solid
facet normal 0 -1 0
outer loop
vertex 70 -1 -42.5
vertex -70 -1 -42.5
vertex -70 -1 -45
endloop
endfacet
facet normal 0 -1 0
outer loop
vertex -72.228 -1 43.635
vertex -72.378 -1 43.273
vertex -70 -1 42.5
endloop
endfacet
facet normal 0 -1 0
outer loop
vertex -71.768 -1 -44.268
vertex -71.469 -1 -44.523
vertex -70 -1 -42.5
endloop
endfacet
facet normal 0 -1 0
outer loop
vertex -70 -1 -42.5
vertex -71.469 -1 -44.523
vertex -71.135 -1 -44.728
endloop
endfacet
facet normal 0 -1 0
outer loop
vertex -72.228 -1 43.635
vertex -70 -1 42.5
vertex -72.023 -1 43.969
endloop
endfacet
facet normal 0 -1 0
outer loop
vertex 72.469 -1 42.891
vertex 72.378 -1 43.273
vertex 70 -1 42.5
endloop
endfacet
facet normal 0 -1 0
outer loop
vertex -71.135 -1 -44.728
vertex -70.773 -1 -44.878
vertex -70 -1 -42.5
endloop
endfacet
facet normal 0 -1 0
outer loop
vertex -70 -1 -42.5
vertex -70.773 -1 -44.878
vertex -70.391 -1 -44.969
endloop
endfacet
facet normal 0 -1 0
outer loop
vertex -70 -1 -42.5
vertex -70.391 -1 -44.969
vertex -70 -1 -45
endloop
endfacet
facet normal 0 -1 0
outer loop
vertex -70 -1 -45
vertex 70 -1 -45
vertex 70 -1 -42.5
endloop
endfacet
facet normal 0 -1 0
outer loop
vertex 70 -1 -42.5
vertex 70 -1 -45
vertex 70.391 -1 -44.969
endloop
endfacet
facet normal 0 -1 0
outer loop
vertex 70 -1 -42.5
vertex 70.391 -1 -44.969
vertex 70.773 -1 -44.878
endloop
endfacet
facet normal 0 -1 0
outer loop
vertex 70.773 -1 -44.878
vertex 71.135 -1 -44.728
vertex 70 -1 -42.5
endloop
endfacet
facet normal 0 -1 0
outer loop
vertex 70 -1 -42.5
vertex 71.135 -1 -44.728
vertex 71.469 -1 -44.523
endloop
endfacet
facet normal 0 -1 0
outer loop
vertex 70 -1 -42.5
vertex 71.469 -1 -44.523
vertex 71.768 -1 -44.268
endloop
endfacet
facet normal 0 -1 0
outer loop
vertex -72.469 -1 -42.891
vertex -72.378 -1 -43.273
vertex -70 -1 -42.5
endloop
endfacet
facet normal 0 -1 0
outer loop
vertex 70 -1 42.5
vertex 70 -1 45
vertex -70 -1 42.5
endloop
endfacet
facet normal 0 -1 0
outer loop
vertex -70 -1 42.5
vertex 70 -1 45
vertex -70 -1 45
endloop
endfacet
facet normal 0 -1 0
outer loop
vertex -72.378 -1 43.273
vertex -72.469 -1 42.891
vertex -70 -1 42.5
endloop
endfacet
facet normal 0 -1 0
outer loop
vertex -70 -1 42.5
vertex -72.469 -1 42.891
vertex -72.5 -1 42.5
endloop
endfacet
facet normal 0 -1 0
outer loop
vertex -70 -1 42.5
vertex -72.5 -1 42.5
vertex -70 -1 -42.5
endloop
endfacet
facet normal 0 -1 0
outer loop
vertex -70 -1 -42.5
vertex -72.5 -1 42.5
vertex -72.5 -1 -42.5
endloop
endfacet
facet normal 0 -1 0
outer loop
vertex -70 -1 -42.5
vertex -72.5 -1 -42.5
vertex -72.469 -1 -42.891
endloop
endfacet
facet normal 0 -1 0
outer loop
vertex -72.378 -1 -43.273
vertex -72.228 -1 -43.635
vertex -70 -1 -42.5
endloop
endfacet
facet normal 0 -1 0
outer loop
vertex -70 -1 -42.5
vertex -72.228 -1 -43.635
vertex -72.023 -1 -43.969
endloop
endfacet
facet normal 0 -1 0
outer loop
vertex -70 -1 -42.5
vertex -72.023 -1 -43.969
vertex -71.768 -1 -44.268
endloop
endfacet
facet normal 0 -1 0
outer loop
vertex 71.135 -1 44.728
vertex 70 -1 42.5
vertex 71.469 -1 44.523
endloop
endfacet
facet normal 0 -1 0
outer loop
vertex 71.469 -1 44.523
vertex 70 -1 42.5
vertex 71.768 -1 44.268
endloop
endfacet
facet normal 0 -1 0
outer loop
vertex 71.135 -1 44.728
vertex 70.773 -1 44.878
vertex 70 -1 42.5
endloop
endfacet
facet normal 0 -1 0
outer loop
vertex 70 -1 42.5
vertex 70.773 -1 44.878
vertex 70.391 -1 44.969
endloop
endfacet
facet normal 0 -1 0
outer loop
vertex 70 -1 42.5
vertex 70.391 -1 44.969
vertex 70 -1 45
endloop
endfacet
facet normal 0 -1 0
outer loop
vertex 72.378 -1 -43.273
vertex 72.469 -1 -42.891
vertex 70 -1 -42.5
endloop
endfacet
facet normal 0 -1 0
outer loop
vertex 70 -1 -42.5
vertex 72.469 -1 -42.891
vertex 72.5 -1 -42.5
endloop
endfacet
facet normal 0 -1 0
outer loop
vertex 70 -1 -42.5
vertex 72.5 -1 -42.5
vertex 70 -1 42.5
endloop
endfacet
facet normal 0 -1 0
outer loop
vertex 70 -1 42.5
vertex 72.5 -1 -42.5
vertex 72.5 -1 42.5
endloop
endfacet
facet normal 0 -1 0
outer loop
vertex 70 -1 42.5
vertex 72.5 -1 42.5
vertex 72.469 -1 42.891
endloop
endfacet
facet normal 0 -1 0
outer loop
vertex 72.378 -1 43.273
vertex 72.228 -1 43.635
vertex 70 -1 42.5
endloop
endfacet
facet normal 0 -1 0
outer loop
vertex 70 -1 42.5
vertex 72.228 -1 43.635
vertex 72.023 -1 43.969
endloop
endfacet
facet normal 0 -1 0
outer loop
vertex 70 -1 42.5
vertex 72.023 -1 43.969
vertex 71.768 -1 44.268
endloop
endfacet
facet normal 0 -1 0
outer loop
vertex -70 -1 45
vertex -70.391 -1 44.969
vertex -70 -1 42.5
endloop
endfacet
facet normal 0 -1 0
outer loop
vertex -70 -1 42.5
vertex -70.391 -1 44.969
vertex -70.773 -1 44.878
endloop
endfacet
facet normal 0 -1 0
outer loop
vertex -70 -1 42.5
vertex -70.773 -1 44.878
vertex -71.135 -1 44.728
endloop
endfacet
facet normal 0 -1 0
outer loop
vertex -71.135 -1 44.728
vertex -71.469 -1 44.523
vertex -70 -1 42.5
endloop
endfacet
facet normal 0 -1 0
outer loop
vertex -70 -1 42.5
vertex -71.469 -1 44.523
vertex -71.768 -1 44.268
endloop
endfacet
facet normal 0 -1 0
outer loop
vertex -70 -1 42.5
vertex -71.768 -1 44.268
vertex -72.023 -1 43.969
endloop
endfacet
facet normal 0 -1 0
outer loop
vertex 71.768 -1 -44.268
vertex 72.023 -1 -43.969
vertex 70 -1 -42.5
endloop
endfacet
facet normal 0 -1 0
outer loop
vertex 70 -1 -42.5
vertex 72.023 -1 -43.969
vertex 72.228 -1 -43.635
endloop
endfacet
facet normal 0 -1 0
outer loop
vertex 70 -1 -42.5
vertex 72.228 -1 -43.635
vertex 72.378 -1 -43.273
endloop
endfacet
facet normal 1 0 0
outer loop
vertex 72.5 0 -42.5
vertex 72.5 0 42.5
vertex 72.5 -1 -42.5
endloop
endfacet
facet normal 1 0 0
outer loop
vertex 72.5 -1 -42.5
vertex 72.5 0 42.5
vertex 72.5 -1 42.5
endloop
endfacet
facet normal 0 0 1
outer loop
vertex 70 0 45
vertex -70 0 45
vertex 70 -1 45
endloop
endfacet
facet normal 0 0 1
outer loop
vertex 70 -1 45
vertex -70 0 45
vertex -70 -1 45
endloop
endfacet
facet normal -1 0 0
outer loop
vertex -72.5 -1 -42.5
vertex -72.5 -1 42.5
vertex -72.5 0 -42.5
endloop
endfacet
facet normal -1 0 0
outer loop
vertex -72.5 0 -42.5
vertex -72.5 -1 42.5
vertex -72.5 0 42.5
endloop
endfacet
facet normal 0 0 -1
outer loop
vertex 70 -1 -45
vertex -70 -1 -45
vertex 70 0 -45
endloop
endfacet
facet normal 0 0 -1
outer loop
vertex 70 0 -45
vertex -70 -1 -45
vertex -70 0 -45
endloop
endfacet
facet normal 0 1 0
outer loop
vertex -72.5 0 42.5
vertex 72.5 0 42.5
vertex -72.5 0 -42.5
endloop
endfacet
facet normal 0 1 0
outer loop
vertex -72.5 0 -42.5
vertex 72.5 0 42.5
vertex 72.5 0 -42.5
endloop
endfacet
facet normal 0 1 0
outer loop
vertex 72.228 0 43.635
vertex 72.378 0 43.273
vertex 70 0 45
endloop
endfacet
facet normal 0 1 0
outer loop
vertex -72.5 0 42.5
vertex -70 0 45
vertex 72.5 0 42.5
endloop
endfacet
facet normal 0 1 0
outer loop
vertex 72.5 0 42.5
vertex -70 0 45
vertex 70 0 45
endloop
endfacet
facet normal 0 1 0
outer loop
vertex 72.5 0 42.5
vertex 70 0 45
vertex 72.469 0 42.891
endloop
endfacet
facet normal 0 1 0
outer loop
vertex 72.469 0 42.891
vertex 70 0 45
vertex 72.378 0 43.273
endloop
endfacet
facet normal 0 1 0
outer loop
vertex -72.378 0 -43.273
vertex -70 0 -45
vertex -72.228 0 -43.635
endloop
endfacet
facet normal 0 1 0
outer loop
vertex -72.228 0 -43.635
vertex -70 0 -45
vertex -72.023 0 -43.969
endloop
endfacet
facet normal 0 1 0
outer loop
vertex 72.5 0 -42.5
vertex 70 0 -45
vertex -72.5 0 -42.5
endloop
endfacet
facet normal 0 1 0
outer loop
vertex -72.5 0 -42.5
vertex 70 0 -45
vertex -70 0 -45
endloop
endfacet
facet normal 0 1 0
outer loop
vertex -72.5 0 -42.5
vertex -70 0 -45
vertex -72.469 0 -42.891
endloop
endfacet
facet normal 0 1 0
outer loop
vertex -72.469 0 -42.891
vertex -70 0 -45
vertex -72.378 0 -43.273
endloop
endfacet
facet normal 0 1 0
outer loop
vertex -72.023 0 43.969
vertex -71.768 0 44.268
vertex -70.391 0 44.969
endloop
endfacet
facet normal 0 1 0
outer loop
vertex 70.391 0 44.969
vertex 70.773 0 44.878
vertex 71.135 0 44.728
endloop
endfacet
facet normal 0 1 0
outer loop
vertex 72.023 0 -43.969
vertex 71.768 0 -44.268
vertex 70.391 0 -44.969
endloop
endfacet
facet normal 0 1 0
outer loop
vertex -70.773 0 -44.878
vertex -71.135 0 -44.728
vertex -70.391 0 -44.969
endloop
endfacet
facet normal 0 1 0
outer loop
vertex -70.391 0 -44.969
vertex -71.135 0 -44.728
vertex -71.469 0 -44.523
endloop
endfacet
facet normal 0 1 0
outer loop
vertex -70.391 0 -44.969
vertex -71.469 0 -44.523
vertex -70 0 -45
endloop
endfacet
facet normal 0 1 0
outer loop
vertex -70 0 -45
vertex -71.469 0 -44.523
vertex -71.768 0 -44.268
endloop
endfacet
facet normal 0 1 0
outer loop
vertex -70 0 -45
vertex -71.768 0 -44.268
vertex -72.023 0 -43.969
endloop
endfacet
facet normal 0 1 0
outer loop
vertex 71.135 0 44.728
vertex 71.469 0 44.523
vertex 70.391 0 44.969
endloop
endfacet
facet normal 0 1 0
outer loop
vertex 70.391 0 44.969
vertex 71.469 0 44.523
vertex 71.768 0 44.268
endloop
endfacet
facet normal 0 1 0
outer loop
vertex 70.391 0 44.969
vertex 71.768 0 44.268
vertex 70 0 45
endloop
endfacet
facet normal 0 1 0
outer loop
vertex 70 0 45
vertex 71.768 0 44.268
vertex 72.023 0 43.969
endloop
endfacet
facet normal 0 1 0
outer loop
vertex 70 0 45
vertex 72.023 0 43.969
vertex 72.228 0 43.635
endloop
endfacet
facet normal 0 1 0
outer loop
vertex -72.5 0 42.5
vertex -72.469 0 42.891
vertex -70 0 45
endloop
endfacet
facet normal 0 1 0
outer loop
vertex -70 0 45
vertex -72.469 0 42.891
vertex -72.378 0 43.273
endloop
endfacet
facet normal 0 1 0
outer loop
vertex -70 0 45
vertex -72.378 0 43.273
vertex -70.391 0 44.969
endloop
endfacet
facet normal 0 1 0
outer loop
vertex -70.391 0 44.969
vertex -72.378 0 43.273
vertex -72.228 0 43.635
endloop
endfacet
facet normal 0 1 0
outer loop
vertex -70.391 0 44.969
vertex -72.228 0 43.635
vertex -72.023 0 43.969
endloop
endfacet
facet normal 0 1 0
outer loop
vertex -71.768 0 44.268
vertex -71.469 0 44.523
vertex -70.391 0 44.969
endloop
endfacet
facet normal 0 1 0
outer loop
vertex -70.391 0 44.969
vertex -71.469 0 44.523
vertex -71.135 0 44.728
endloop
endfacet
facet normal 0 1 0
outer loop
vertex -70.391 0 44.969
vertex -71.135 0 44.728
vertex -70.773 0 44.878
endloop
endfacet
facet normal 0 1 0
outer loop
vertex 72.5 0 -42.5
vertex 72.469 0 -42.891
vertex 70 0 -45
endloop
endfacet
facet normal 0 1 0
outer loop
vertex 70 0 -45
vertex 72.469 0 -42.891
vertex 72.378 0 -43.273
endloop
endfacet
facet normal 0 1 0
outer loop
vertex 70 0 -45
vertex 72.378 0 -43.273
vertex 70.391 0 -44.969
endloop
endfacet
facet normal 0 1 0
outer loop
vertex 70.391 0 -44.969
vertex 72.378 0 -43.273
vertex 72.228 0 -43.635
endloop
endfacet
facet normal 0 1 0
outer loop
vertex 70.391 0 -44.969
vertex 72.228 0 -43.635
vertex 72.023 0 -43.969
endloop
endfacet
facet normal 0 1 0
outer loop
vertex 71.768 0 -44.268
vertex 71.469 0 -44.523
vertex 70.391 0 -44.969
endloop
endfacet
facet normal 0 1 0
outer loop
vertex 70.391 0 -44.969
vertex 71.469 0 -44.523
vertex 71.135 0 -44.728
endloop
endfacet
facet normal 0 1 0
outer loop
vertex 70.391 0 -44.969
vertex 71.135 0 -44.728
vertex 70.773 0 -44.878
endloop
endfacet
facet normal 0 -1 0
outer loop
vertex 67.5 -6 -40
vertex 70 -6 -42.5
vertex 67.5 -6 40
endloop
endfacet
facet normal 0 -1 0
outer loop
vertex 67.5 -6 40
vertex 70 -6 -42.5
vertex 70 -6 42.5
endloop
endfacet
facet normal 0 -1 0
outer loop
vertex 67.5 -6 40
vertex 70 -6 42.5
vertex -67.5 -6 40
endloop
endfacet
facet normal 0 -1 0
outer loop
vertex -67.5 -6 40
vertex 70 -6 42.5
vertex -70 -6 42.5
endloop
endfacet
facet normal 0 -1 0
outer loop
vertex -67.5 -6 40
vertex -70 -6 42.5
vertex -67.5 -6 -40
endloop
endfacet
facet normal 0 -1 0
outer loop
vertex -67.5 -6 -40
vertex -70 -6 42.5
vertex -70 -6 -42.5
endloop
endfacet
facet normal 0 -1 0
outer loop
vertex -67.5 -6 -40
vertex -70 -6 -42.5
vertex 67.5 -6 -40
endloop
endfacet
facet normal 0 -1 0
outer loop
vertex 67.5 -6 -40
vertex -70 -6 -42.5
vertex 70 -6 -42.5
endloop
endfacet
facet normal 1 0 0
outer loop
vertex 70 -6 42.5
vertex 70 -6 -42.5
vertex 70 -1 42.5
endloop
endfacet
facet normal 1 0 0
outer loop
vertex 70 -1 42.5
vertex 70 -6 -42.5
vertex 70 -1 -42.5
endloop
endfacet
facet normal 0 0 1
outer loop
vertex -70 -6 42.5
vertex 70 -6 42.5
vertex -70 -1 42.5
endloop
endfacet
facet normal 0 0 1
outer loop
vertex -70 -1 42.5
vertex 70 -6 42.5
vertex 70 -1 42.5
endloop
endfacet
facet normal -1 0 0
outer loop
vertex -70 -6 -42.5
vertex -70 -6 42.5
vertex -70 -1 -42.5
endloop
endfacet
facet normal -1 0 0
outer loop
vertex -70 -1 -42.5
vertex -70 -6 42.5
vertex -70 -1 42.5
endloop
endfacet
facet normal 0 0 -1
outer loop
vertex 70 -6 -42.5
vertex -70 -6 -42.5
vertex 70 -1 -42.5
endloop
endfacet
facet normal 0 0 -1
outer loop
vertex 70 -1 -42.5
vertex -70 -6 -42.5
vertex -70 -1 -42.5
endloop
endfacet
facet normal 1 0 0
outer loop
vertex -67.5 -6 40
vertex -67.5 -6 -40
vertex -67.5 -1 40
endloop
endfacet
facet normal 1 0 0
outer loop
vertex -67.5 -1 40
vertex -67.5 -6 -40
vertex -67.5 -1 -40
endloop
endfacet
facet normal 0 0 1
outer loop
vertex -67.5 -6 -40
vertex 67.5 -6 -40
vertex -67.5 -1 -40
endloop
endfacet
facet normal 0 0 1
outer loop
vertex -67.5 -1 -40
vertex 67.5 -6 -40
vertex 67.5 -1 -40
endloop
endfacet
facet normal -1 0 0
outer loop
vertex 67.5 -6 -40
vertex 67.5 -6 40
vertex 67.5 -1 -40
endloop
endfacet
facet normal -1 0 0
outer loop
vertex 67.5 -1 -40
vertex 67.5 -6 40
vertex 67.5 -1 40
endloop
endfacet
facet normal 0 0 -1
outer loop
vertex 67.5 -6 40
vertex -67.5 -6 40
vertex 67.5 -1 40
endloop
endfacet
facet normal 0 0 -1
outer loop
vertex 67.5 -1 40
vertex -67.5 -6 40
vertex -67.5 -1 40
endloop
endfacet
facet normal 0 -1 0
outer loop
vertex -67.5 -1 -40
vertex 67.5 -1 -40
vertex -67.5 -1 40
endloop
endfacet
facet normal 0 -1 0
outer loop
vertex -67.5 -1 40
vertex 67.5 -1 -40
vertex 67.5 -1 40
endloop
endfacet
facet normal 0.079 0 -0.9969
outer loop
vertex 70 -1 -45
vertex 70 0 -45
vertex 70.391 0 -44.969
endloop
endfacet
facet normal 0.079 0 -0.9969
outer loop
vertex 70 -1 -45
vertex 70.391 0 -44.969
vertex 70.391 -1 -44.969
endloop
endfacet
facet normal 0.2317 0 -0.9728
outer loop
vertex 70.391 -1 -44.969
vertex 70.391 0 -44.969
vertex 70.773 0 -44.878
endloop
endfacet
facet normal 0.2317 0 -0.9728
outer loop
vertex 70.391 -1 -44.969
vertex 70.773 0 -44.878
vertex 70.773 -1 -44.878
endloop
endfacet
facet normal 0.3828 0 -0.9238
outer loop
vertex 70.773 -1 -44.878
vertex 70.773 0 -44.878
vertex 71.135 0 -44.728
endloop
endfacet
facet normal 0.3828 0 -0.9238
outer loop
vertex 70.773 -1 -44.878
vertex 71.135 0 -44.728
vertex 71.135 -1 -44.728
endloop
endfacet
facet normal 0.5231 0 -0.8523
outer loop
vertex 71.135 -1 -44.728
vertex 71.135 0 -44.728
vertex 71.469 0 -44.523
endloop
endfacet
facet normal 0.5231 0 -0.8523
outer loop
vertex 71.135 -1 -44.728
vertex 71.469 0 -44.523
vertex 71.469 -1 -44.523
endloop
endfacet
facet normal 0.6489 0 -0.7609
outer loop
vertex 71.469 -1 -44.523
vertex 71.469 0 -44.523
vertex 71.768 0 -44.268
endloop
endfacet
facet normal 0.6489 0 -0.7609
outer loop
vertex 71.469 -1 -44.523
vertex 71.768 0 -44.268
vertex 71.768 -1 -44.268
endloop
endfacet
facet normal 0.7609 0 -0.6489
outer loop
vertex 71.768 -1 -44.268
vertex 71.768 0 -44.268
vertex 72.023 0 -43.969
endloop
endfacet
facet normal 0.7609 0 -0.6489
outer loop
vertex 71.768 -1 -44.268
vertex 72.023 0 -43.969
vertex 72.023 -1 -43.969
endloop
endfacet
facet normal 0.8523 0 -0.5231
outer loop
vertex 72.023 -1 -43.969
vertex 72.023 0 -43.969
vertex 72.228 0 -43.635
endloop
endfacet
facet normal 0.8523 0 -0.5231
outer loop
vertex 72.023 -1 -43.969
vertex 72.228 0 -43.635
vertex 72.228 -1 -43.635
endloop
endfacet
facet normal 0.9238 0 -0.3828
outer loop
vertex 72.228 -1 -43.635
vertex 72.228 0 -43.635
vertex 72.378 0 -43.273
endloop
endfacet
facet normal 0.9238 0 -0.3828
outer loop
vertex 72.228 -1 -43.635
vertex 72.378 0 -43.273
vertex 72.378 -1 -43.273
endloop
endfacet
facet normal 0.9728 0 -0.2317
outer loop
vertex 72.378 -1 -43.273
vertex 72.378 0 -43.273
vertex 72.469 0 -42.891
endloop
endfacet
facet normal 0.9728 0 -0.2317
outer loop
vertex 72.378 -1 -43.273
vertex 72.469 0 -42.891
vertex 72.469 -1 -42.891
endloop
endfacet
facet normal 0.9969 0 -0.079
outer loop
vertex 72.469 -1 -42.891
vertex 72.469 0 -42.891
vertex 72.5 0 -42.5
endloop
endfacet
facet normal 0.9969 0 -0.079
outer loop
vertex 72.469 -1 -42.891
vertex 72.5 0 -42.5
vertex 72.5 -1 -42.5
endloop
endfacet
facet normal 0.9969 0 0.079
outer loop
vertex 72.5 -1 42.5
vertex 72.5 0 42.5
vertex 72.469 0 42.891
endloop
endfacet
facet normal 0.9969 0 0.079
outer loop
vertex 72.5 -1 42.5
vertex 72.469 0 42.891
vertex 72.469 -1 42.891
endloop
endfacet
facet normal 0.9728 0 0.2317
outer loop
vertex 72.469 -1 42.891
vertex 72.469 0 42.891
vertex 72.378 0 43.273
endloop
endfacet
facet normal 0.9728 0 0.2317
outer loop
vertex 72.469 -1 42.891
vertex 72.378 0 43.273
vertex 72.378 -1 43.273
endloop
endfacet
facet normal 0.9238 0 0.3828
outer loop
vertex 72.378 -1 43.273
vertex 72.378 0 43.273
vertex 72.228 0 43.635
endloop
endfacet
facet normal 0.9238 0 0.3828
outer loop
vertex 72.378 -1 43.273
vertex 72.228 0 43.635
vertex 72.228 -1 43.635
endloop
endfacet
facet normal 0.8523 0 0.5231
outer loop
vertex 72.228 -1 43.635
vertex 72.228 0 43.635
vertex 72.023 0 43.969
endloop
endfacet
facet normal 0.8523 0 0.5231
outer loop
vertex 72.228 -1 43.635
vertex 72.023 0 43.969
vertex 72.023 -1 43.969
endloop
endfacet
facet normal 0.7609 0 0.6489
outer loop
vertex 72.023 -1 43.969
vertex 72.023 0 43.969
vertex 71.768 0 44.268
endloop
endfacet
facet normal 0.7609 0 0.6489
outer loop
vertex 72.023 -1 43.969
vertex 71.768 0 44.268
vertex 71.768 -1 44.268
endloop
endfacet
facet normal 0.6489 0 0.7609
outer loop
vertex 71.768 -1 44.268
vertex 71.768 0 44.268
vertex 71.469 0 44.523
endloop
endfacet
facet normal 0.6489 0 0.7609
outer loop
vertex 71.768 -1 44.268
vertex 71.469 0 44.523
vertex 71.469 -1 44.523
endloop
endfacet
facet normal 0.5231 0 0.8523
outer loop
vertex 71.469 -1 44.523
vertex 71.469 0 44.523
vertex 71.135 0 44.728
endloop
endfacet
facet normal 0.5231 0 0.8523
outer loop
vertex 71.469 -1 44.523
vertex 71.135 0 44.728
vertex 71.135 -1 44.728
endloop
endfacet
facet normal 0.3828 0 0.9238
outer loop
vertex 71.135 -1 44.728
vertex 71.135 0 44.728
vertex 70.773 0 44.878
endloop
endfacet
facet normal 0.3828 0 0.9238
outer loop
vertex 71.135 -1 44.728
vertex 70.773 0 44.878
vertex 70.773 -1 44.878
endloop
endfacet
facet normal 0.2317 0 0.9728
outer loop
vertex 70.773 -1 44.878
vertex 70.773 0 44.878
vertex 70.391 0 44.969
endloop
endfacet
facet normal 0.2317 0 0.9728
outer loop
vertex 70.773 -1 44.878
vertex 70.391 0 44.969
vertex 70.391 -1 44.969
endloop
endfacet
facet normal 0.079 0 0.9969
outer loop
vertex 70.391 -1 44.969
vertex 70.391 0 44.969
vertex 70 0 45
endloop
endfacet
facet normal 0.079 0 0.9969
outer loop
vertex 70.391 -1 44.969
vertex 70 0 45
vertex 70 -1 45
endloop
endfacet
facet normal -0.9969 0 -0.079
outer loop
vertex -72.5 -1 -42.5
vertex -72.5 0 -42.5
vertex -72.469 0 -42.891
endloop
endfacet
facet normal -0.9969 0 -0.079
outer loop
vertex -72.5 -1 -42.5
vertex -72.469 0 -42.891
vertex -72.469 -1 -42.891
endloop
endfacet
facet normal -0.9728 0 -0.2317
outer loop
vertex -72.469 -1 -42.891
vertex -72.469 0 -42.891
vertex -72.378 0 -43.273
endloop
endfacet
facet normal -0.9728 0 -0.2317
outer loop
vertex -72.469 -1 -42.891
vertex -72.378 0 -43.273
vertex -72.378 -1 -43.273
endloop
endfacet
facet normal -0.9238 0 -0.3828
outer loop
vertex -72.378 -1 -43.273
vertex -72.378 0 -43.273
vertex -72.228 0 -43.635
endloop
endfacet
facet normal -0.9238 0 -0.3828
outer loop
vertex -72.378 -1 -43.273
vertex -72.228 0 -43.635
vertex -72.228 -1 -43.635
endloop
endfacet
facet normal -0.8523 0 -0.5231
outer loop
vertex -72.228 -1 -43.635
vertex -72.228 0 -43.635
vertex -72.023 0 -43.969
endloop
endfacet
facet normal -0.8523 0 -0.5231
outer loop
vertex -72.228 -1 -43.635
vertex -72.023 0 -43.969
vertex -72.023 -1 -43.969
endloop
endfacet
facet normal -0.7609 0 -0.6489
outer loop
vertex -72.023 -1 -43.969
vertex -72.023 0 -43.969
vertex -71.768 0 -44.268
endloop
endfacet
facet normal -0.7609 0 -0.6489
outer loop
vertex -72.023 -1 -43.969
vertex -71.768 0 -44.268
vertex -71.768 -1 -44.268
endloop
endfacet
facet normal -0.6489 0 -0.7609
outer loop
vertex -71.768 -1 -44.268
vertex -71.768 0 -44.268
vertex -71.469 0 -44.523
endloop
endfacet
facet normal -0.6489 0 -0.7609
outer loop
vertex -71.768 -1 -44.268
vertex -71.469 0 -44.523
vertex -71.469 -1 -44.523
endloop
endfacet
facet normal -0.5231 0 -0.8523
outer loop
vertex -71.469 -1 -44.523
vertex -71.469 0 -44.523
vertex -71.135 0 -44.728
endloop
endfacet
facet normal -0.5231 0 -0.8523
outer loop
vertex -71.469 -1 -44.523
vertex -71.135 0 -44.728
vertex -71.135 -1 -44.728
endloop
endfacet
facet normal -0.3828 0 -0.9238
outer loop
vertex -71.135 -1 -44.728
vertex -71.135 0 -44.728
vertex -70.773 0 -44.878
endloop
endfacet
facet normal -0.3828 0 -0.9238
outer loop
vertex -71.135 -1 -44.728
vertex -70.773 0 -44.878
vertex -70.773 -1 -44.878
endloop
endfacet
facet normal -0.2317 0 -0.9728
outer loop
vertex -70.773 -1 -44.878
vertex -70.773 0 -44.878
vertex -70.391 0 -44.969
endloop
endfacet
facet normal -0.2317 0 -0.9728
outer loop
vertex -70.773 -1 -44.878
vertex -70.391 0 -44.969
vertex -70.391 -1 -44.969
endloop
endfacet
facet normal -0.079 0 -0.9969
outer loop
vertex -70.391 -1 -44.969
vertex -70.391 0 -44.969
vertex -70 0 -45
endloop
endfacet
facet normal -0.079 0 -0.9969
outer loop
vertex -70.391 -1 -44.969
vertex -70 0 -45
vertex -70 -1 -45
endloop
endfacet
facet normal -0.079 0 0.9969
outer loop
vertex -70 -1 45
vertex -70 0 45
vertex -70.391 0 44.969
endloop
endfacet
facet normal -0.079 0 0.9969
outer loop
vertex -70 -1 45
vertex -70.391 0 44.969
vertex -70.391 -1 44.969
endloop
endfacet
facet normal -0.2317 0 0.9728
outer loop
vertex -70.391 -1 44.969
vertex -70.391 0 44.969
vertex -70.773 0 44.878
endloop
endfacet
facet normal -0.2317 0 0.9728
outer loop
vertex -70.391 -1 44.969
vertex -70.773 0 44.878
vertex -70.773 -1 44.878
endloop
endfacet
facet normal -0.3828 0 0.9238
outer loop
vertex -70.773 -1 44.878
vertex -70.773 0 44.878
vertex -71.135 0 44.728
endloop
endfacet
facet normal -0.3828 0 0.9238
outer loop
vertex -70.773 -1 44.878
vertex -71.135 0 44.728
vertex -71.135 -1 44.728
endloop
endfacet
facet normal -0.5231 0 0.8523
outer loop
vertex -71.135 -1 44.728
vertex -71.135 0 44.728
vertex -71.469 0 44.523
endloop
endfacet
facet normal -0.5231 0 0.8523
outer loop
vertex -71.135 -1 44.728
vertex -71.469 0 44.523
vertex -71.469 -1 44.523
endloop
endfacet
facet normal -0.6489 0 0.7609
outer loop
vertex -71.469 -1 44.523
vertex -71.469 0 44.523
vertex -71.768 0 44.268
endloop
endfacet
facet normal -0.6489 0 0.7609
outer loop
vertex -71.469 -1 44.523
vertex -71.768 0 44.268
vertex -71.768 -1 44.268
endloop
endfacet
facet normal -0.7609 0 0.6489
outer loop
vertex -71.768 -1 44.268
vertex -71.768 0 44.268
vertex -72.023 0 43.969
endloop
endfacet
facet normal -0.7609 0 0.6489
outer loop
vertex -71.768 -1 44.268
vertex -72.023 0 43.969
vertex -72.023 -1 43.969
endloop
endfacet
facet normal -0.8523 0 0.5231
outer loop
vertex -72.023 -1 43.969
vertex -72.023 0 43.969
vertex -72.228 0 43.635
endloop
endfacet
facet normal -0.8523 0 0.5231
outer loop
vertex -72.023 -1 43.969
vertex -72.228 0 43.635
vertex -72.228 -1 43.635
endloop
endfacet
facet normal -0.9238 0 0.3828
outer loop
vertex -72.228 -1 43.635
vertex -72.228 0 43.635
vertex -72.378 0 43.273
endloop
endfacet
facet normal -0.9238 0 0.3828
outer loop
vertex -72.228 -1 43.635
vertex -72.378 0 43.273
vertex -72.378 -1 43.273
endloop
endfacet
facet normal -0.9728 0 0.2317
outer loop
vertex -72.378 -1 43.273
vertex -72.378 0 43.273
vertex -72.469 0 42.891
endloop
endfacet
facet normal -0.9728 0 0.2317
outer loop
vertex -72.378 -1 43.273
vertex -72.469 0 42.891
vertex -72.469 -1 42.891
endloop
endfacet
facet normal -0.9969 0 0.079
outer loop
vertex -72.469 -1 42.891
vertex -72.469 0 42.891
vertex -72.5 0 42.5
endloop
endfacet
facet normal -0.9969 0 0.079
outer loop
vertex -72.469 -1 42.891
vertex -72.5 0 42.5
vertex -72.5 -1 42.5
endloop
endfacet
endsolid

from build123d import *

# Parameters (mm, degrees)
SKETCH1_W           = 145
SKETCH1_H           = 90
BOSS_EXTRUDE1_DEPTH = 1
SKETCH2_W           = 140
SKETCH2_H           = 85
SKETCH2_W_2         = 135
SKETCH2_H_2         = 80
BOSS_EXTRUDE2_DEPTH = 5
FILLET1_R           = 2.5


with BuildPart() as part:
    # Sketch1 → Boss-Extrude1 (new body)
    with BuildSketch(Plane(origin=(0, 0, 0), x_dir=(1, 0, 0), z_dir=(0, 1, 0))):
        Rectangle(SKETCH1_W, SKETCH1_H)
    extrude(amount=-BOSS_EXTRUDE1_DEPTH)

    # Sketch2 → Boss-Extrude2 (add)
    with BuildSketch(Plane.XZ.offset(1)):
        Rectangle(SKETCH2_W, SKETCH2_H)
        Rectangle(SKETCH2_W_2, SKETCH2_H_2, mode=Mode.SUBTRACT)
    extrude(amount=BOSS_EXTRUDE2_DEPTH)

    # Fillet1
    fillet1_edges = [part.edges().sort_by_distance(p)[0] for p in [
        (72.5, -0.5, 45),
        (-72.5, -0.5, 45),
        (-72.5, -0.5, -45),
        (72.5, -0.5, -45),
    ]]
    fillet(fillet1_edges, radius=FILLET1_R)


solid = part.part
